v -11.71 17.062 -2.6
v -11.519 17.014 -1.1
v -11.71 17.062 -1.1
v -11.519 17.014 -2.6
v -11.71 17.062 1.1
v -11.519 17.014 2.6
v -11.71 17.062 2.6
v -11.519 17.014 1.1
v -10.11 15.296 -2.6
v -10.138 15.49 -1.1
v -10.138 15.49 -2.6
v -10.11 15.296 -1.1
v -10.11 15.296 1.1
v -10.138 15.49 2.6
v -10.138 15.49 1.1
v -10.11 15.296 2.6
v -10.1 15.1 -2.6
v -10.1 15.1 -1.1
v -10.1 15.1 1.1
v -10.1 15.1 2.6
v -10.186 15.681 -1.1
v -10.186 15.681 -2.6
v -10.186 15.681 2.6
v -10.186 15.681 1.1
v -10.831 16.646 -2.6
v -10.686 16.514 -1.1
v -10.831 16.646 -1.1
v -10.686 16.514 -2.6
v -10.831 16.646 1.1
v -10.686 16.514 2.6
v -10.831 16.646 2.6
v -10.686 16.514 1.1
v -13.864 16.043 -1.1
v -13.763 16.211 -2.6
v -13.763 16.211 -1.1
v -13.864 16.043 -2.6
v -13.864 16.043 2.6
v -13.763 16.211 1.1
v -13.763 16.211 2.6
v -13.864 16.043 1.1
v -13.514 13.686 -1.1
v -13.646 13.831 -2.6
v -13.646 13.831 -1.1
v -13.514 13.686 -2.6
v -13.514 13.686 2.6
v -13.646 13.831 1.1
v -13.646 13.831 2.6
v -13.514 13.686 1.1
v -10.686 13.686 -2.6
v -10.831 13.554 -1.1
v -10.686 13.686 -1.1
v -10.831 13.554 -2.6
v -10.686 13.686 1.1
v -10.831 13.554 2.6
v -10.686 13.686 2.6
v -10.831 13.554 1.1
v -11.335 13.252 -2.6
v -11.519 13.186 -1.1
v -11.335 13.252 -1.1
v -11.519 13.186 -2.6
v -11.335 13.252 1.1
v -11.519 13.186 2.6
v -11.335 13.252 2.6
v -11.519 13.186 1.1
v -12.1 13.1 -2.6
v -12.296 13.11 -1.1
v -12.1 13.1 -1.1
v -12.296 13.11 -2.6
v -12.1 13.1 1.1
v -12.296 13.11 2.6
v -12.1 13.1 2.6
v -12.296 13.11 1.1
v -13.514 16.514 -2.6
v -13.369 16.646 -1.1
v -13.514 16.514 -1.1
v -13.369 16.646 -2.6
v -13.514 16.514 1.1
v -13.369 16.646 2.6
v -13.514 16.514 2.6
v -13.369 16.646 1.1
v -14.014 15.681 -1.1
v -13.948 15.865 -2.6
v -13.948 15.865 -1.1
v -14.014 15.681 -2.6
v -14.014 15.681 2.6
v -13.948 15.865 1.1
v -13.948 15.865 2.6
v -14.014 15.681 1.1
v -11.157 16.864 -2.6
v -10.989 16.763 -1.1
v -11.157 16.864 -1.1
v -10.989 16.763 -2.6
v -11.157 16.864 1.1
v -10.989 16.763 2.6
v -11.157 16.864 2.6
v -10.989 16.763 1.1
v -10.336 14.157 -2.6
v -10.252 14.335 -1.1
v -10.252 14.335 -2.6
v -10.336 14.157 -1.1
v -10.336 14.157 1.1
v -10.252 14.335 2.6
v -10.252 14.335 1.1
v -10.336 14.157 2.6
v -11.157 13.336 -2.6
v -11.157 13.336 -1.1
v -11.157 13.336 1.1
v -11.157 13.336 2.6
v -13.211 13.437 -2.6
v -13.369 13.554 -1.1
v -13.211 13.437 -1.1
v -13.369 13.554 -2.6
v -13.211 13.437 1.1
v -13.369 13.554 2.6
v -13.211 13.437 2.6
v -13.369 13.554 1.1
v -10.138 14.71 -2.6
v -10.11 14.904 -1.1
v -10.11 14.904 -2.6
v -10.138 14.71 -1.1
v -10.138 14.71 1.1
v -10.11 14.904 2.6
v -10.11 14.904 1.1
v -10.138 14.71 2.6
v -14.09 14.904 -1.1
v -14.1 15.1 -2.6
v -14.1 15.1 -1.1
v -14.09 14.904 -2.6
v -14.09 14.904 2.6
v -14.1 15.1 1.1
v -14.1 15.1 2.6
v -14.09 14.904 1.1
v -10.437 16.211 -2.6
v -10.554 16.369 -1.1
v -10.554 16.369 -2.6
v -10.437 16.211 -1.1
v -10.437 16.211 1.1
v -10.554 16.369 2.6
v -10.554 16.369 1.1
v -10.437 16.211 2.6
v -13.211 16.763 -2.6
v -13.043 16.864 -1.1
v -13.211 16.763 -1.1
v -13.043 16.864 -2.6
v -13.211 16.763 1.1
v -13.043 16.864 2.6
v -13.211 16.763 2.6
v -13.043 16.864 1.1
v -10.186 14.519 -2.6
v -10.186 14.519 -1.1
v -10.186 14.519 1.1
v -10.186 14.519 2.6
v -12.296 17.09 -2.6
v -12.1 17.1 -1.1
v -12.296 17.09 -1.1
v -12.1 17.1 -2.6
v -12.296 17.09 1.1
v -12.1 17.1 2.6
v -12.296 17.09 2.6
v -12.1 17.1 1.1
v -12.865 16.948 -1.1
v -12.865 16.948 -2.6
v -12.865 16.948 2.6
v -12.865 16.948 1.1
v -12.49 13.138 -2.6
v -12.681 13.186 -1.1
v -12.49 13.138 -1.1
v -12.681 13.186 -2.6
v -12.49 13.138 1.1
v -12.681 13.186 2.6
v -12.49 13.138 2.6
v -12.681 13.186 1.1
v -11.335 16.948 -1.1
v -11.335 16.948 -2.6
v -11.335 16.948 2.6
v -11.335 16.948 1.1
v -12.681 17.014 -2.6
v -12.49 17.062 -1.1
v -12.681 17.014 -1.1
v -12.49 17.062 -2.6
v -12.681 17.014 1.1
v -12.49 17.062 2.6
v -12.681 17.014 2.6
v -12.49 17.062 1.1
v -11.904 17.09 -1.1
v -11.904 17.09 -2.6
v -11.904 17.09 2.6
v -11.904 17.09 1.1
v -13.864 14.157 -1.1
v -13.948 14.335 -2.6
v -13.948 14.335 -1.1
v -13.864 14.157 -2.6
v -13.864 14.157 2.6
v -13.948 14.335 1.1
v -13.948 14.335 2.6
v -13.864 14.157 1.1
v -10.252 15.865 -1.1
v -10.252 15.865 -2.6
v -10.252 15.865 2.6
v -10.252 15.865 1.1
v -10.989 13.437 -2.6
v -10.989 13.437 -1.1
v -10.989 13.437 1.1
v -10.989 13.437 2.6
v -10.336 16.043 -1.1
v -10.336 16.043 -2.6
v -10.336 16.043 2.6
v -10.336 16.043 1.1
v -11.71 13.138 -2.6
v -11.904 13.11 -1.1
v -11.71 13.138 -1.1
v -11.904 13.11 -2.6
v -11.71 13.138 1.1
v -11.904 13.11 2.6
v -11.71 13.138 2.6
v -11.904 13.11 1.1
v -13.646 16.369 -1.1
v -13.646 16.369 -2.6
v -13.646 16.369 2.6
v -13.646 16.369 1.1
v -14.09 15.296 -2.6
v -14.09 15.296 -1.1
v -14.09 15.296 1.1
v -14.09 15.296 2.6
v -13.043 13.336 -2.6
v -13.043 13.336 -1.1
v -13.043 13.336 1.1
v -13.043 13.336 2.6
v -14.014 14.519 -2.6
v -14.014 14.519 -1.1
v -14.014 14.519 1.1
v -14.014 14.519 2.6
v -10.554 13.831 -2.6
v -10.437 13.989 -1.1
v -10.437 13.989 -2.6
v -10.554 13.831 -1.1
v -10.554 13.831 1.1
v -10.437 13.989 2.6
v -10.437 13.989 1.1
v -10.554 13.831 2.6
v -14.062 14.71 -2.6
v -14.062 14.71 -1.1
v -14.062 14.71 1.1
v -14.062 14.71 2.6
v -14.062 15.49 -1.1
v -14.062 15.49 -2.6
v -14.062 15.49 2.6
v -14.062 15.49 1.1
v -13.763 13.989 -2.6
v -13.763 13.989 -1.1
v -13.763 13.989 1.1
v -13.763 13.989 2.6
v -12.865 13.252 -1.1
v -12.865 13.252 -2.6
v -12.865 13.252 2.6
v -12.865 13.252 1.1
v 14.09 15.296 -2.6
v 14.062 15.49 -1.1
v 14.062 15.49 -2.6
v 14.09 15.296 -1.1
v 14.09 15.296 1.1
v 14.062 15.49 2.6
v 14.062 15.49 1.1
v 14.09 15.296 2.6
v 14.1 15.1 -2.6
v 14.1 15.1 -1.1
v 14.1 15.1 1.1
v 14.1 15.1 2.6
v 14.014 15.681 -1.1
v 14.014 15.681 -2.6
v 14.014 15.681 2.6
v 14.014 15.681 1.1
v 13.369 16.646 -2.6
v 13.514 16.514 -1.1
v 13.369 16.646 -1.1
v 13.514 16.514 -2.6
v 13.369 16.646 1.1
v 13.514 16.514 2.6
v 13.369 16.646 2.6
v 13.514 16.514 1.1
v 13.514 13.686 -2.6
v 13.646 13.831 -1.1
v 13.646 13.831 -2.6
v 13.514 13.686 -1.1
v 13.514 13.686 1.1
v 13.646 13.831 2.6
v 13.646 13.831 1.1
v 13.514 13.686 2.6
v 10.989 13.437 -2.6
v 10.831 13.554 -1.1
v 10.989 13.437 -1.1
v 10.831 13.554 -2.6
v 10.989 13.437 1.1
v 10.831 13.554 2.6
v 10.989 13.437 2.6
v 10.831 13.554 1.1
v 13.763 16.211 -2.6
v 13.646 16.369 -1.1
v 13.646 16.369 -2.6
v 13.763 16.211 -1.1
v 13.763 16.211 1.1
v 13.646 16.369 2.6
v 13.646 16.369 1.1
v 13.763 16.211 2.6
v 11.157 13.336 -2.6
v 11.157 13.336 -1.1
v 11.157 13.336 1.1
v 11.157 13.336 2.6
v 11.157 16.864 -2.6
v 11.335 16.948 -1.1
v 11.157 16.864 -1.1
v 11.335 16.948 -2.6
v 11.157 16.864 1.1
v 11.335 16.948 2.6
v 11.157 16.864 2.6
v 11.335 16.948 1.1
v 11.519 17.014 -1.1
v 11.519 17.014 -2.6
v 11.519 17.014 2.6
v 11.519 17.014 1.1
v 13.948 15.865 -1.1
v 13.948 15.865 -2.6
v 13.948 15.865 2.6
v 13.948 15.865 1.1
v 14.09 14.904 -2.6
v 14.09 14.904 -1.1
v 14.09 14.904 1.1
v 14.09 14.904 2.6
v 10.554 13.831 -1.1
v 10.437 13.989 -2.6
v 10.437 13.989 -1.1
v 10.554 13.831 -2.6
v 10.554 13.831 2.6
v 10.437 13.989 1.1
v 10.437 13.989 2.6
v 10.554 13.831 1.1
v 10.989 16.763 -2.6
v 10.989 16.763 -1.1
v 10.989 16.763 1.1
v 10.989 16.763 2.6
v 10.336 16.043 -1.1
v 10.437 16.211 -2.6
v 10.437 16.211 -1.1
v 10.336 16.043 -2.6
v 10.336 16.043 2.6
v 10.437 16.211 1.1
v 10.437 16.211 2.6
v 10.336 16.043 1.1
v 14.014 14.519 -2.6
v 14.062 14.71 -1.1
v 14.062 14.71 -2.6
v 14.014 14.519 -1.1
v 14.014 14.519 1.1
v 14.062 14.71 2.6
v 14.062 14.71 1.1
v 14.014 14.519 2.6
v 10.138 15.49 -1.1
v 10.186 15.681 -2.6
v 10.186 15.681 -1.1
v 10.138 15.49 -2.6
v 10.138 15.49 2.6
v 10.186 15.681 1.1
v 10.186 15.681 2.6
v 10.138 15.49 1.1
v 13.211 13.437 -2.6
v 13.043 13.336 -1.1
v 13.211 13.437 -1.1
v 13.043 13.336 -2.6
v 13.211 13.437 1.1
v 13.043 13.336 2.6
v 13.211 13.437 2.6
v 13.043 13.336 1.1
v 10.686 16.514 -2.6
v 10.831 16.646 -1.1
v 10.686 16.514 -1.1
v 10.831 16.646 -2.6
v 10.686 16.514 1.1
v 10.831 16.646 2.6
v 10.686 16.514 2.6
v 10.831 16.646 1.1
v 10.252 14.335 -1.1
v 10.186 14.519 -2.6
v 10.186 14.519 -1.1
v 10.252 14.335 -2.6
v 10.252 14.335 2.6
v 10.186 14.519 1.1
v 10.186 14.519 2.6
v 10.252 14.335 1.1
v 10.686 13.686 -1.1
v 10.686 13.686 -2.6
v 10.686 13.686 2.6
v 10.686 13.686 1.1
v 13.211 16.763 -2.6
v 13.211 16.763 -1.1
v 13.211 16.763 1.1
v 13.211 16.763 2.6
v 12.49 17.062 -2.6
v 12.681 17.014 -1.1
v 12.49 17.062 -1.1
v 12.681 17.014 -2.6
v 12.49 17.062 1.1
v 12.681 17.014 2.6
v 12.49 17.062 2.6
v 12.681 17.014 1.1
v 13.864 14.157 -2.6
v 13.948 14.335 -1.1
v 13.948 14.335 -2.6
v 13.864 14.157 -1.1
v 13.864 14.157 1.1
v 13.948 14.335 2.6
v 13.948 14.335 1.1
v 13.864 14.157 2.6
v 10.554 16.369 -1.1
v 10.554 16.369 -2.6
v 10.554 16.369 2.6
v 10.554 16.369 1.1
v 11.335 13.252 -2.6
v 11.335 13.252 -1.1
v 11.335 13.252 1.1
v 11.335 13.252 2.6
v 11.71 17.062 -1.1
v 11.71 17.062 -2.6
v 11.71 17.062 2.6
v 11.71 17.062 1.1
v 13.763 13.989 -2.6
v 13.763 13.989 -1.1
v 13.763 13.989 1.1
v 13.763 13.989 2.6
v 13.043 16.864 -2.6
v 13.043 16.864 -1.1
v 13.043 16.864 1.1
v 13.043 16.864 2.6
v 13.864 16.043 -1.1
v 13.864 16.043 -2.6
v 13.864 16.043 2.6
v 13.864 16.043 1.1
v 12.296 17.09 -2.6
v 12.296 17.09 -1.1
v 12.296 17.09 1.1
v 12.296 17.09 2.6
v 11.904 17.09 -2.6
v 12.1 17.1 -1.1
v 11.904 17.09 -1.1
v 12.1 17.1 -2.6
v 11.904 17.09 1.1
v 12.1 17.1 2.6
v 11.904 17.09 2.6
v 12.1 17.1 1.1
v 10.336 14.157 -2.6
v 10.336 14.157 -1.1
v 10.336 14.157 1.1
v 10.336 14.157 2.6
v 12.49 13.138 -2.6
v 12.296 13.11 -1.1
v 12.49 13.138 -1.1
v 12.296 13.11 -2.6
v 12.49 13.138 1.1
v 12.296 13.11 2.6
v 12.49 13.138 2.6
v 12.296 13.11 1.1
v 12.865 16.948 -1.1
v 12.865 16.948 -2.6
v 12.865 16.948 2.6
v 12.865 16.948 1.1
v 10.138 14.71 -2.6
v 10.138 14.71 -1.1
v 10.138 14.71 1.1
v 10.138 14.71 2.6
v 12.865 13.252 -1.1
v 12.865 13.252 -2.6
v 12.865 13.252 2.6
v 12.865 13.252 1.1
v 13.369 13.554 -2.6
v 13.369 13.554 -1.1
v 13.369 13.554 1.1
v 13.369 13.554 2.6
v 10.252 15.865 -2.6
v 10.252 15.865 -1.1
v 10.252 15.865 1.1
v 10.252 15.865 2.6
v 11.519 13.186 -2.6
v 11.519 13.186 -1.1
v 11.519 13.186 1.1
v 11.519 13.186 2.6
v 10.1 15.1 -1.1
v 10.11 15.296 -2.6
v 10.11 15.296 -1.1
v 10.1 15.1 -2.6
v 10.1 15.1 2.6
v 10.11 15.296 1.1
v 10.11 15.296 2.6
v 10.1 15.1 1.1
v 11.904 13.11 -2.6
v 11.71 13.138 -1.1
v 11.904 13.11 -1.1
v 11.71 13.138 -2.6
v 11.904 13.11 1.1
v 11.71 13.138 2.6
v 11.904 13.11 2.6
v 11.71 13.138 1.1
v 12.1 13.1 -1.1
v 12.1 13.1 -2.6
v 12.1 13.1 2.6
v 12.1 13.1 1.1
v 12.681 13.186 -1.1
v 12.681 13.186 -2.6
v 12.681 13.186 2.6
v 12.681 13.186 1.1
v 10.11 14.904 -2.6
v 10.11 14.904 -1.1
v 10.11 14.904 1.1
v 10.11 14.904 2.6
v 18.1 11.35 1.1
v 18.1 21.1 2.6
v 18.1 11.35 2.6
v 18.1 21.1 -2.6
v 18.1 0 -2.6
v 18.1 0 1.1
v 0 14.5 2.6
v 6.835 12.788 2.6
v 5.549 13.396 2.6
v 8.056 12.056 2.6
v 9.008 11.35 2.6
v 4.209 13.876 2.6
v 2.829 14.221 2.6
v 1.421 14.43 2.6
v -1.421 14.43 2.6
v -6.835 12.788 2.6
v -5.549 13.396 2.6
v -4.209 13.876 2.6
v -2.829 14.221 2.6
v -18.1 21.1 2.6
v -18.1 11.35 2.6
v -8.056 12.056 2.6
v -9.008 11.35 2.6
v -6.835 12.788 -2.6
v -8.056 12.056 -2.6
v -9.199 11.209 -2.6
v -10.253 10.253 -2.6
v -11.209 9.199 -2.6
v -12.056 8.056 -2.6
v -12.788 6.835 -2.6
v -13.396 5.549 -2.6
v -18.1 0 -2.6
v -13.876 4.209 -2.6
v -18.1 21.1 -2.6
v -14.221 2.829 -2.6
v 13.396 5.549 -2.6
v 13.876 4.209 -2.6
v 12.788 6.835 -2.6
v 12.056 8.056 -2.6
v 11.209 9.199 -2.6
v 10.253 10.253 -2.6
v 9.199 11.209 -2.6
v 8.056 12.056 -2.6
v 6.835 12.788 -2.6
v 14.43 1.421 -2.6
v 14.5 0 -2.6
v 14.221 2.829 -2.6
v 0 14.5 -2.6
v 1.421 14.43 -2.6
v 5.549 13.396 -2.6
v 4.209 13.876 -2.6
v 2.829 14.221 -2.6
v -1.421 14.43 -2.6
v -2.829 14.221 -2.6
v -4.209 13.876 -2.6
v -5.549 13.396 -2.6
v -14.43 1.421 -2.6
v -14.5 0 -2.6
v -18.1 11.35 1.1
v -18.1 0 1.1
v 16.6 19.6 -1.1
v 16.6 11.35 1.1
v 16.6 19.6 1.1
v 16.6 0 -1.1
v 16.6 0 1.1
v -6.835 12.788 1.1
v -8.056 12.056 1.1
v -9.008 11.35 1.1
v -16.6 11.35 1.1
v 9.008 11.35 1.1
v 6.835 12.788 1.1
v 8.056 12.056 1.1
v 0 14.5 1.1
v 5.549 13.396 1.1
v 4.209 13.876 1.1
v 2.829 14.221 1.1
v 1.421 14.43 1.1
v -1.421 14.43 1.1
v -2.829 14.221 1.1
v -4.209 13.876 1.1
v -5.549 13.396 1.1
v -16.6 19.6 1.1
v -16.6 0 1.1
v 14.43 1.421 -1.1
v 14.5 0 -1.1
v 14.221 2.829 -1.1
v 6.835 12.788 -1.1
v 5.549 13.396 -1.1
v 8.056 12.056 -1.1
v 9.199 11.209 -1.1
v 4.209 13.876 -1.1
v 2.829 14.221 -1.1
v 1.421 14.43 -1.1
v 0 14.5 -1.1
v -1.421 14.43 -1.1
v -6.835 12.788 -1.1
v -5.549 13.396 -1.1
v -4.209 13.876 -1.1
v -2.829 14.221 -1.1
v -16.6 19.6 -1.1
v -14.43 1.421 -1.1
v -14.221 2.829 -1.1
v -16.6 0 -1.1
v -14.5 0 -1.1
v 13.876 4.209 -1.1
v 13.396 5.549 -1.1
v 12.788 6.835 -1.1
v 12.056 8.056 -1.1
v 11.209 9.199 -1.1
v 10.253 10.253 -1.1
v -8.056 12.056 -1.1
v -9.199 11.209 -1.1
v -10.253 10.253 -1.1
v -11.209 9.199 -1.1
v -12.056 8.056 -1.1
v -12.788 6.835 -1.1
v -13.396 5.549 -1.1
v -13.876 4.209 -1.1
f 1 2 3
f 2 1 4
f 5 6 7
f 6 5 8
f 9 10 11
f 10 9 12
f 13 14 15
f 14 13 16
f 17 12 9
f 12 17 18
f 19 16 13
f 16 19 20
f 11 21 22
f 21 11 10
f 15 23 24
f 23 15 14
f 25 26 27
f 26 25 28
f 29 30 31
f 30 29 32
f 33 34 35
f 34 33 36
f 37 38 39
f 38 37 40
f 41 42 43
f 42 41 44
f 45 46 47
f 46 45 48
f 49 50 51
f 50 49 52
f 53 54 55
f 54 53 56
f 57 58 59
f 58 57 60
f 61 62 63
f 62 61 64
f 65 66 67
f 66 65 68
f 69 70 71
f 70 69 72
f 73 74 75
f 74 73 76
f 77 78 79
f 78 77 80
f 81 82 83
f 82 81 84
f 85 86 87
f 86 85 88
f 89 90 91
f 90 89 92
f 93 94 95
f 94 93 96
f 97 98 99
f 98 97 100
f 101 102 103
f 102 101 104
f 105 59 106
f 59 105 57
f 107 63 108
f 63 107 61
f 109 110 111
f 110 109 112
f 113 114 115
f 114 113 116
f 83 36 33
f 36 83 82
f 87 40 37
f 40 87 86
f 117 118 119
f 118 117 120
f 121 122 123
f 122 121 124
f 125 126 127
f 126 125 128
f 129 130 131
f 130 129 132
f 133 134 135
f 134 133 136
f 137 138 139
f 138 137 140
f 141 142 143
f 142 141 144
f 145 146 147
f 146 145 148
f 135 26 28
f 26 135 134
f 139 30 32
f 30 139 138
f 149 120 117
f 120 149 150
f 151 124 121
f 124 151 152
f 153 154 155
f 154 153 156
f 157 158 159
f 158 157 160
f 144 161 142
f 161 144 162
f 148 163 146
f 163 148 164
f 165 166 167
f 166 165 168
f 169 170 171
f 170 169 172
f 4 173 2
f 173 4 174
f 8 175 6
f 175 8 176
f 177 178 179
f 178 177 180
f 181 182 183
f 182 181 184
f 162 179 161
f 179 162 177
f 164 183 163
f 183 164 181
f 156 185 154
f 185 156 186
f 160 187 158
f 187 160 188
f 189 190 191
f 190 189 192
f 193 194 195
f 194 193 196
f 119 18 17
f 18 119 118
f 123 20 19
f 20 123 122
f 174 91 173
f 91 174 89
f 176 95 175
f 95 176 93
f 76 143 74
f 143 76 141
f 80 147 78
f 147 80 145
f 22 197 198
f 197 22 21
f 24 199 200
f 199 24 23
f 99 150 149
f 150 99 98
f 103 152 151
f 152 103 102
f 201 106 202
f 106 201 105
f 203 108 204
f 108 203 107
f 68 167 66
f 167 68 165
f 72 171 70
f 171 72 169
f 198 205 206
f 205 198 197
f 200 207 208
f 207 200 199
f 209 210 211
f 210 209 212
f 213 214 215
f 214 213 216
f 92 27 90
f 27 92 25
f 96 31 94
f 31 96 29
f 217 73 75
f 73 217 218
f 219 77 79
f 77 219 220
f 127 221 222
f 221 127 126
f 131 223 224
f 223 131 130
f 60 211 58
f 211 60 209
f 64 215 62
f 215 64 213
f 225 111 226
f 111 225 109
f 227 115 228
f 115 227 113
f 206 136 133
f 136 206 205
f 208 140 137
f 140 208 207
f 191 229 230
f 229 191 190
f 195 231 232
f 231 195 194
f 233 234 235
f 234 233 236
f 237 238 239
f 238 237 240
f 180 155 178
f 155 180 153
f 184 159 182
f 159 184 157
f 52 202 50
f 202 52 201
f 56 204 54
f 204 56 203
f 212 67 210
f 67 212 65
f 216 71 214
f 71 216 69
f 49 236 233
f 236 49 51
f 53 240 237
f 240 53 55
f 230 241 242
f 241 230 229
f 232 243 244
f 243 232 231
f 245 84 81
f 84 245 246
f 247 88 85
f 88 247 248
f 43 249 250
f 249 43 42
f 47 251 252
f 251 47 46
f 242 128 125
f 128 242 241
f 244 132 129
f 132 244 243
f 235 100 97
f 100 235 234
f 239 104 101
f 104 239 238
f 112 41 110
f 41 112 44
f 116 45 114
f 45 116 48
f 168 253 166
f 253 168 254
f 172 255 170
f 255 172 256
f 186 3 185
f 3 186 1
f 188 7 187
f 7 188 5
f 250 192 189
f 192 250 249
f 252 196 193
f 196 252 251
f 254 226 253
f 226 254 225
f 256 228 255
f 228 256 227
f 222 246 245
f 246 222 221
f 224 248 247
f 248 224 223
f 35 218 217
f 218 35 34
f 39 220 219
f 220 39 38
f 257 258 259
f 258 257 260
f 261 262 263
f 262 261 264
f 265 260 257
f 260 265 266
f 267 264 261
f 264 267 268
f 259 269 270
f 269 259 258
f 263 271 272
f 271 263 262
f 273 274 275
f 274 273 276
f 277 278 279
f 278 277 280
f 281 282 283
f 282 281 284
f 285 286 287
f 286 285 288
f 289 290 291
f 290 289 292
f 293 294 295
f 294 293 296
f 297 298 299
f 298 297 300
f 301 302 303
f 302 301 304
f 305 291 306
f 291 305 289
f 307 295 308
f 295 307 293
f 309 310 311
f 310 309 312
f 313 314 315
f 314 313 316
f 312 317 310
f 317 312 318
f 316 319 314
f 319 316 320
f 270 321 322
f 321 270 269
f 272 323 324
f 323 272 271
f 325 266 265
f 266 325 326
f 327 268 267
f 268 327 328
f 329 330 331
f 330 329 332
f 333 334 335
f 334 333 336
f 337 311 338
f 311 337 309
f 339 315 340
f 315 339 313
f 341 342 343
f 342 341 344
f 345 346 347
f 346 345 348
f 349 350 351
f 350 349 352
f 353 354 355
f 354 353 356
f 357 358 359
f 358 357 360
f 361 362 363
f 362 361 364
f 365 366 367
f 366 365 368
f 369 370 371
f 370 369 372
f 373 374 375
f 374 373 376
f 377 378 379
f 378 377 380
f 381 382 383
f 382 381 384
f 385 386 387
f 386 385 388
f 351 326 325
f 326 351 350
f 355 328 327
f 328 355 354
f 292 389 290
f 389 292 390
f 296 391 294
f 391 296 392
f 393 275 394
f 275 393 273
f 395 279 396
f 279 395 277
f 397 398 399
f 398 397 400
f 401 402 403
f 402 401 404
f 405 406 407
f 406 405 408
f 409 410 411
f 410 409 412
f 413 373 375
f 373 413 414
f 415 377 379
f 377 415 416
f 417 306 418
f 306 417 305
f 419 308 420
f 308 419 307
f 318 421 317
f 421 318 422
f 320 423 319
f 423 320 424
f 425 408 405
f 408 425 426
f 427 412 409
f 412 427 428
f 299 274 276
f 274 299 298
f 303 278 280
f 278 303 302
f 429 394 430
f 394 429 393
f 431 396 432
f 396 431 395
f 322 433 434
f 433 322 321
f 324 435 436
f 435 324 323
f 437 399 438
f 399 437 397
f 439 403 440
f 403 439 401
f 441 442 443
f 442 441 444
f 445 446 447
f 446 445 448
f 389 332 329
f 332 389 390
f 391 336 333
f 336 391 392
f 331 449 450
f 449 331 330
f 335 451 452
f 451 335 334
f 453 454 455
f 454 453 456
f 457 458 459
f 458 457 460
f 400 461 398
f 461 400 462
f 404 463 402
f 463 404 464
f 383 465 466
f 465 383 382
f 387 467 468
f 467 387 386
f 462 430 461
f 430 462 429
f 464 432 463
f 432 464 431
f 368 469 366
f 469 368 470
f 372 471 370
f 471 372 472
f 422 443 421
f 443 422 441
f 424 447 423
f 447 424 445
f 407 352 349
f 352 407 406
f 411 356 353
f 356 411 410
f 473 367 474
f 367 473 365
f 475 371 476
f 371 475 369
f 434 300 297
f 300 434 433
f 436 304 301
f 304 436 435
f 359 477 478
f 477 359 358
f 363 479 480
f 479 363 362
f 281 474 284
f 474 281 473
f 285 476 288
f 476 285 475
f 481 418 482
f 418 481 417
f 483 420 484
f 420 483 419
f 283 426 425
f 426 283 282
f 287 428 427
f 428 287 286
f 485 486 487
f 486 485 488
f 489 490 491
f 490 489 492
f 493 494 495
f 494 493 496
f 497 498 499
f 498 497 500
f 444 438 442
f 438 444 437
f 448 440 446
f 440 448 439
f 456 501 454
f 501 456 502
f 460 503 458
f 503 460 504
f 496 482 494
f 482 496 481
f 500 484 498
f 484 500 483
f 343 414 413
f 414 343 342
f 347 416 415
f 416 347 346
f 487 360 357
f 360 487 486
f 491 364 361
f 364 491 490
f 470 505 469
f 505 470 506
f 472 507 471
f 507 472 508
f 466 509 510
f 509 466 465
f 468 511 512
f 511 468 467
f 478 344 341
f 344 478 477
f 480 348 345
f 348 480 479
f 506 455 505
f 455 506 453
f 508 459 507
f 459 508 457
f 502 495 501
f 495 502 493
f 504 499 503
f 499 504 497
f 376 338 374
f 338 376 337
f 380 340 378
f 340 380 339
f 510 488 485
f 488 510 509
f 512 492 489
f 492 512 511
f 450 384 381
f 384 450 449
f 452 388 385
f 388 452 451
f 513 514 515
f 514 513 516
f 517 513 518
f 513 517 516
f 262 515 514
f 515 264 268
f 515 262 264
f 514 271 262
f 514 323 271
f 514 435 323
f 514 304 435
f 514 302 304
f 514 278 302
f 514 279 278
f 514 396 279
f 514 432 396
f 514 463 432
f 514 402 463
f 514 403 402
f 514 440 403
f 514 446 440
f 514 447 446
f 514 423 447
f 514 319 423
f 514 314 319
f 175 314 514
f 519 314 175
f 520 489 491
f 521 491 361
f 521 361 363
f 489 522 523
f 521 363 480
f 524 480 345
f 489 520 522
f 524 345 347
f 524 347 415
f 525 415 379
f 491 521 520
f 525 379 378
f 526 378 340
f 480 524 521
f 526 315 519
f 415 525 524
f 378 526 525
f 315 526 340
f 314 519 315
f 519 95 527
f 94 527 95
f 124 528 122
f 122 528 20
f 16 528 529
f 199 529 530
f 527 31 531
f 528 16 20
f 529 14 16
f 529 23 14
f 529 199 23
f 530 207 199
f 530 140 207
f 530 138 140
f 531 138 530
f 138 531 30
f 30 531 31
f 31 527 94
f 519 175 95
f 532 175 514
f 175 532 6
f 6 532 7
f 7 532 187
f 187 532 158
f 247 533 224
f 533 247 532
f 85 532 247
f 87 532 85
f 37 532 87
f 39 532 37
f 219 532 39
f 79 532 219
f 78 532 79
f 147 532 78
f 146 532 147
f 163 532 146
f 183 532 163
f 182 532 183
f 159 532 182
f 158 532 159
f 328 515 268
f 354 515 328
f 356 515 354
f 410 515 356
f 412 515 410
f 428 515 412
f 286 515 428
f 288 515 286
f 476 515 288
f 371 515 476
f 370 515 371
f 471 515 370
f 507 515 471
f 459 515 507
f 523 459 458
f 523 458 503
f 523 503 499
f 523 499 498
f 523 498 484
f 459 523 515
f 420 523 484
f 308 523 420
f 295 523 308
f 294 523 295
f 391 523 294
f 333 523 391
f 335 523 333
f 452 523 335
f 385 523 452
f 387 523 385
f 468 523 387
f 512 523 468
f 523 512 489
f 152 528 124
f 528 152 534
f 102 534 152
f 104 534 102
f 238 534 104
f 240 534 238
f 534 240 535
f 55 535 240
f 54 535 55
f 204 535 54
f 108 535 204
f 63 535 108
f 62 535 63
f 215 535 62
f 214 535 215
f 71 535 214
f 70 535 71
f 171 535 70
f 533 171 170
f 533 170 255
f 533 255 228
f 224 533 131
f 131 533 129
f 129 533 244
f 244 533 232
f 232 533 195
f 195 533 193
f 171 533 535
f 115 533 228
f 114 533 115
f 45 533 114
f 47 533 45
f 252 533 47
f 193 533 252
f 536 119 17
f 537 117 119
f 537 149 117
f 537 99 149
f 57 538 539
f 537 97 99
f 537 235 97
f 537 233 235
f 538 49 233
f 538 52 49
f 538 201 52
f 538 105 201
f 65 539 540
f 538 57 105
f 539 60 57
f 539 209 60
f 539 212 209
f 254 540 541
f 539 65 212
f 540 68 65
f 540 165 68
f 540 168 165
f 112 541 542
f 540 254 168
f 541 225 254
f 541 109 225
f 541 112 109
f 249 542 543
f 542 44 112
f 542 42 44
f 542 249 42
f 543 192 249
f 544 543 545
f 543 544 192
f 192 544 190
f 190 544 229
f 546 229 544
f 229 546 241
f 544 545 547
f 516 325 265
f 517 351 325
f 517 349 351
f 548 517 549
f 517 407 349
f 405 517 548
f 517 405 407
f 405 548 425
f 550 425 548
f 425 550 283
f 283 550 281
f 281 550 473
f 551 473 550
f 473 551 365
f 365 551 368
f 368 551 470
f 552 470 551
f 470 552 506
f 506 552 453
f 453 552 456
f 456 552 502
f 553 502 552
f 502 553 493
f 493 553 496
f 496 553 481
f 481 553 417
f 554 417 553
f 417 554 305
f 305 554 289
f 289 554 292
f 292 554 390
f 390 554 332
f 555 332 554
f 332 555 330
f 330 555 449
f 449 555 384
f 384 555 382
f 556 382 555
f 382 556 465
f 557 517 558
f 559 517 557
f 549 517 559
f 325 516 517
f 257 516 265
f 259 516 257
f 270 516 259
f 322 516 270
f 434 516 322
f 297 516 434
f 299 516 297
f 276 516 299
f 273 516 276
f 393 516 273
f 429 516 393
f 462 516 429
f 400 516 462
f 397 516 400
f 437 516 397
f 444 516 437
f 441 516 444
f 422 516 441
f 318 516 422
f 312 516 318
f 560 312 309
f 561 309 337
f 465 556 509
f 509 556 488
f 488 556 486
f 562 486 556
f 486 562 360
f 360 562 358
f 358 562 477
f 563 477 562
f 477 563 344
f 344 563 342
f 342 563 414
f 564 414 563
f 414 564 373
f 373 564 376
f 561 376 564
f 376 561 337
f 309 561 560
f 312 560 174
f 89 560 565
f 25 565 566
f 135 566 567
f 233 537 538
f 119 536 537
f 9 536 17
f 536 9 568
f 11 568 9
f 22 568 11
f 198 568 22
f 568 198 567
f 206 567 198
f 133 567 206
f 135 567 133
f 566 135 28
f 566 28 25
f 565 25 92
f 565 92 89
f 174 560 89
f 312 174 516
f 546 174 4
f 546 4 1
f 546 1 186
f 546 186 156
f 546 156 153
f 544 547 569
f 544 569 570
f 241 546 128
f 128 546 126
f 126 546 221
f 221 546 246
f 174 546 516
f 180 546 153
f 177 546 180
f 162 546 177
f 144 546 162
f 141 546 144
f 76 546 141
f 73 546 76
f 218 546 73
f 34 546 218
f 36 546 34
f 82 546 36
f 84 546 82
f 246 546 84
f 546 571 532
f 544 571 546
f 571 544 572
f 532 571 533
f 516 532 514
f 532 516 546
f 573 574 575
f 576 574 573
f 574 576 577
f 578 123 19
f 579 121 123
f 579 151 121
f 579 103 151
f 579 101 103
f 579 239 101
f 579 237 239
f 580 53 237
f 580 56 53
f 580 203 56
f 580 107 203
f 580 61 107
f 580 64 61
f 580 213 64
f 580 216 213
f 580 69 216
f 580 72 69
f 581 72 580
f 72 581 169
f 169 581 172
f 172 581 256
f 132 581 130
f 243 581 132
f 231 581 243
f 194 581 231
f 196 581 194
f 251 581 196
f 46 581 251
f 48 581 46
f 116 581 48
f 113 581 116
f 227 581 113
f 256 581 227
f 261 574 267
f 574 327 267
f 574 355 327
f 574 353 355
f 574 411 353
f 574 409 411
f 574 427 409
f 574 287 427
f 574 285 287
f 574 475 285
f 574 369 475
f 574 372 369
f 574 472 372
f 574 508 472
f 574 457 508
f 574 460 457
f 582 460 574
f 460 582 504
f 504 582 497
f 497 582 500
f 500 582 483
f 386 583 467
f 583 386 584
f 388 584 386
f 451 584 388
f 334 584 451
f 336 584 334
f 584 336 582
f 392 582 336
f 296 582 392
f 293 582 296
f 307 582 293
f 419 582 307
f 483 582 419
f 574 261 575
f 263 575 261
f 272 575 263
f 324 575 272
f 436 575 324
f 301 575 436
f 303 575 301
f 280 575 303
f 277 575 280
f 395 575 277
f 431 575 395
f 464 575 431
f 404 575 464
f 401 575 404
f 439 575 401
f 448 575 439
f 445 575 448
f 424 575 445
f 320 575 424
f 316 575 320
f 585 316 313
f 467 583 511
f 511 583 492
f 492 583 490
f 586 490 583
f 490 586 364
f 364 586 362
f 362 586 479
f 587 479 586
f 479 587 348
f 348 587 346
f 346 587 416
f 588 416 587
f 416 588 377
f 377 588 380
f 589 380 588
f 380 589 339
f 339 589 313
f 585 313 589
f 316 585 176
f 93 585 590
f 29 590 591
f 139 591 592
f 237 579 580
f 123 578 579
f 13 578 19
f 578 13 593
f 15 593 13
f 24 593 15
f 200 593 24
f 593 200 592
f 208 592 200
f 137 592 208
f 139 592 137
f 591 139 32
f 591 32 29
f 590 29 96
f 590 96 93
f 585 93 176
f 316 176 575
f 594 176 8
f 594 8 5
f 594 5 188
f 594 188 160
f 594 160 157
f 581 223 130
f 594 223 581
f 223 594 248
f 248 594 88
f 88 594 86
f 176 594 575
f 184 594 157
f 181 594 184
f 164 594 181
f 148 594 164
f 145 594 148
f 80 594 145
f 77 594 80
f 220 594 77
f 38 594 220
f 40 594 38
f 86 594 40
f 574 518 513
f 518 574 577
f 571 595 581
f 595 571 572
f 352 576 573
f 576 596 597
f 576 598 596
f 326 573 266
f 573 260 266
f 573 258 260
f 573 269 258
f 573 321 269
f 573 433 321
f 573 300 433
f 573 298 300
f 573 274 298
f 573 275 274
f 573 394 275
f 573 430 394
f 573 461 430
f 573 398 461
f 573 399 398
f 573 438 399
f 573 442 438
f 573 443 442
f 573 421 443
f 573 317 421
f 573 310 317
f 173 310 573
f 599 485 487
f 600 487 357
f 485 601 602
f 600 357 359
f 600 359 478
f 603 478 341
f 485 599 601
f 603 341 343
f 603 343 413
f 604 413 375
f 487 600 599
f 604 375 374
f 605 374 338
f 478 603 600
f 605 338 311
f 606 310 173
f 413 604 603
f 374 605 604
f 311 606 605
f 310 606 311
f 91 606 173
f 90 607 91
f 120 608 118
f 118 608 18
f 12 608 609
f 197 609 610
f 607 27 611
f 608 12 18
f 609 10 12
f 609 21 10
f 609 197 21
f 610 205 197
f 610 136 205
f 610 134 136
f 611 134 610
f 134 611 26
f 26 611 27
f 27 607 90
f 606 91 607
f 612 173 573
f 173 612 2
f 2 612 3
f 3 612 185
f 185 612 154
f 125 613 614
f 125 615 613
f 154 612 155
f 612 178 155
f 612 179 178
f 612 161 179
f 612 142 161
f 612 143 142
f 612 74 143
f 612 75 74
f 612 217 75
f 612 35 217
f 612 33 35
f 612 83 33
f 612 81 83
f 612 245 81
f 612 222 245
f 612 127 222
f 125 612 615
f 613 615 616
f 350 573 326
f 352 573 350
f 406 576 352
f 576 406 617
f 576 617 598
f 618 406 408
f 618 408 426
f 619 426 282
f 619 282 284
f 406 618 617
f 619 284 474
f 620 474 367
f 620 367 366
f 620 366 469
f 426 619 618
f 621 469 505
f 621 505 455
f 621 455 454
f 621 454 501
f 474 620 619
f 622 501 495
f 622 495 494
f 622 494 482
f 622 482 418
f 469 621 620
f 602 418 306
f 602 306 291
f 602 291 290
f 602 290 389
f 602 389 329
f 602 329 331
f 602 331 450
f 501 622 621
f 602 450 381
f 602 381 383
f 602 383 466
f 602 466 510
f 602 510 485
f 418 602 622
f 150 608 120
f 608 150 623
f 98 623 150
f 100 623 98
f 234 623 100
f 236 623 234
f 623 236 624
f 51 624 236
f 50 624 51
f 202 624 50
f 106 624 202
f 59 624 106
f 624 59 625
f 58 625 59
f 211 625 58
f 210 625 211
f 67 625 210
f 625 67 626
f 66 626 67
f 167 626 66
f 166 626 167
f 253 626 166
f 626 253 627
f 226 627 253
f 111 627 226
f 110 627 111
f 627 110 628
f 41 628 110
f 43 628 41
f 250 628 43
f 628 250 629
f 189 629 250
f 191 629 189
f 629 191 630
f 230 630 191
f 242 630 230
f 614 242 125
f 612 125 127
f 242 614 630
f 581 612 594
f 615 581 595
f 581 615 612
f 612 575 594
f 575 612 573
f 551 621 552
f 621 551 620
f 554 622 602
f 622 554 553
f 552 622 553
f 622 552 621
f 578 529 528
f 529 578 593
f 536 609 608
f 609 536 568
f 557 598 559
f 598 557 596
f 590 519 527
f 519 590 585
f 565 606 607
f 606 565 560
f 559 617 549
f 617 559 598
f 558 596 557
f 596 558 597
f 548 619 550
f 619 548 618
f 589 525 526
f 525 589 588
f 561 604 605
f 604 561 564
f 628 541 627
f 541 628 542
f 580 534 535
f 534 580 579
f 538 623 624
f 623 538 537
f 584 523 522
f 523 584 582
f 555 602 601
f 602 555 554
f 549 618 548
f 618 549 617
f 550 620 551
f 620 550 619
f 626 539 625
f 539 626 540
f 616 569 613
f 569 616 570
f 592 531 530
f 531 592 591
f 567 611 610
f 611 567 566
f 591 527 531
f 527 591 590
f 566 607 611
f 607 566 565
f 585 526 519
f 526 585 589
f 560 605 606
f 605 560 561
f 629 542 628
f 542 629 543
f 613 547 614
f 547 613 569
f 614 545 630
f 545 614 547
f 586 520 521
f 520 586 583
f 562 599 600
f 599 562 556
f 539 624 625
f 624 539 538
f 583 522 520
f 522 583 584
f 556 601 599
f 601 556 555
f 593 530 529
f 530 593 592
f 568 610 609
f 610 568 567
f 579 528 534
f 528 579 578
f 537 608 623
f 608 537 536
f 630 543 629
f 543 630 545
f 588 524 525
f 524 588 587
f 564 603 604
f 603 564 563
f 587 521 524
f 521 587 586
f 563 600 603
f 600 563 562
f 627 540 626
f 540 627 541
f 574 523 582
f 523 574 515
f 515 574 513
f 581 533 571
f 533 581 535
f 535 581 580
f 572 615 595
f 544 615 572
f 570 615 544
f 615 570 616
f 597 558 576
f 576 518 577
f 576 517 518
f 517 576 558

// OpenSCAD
IKEA_WIDTH = 22.7;
CASTER_X = 33.2;
CASTER_Y = 39.2;
CASTER_Z = 2.2;
CASTER_BEARING_DIAM = 29;
CASTER_SCREW_DIAM = 4;
CASTER_SCREW_INSET = 4.5;
CASTER_Z_CLEARANCE = 5.7 - CASTER_Z;
THICKNESS = 3;

intersection() {
        
    difference() {
        difference() {
            cube([CASTER_X + THICKNESS, CASTER_Y + THICKNESS, CASTER_Z + THICKNESS], center=true);
            cube([CASTER_X, CASTER_Y, CASTER_Z], center=true);

            for(x = [-1:2:1]) {
                for (y = [-1:2:1]) {
                    translate([x * ((0.5 * CASTER_X) - CASTER_SCREW_INSET), y * ((0.5 * CASTER_Y) - CASTER_SCREW_INSET), 0]) cylinder(d=CASTER_SCREW_DIAM, h=(CASTER_Z + (2 * THICKNESS)), $fn=64, center=true);
                }
            }
        }
        cylinder(d=CASTER_BEARING_DIAM, h=(CASTER_Z + (THICKNESS * 2)), center=true, $fn=64);
        translate([0, 0, 0.5 * (CASTER_Z + THICKNESS)]) cube([CASTER_X + THICKNESS, IKEA_WIDTH, THICKNESS], center=true);
    }
    
    translate([-0.5 * (CASTER_X + THICKNESS),0,-0.5 * (CASTER_Z + THICKNESS)]) cube([CASTER_X + THICKNESS, CASTER_Y + THICKNESS, CASTER_Z + THICKNESS]);
}
